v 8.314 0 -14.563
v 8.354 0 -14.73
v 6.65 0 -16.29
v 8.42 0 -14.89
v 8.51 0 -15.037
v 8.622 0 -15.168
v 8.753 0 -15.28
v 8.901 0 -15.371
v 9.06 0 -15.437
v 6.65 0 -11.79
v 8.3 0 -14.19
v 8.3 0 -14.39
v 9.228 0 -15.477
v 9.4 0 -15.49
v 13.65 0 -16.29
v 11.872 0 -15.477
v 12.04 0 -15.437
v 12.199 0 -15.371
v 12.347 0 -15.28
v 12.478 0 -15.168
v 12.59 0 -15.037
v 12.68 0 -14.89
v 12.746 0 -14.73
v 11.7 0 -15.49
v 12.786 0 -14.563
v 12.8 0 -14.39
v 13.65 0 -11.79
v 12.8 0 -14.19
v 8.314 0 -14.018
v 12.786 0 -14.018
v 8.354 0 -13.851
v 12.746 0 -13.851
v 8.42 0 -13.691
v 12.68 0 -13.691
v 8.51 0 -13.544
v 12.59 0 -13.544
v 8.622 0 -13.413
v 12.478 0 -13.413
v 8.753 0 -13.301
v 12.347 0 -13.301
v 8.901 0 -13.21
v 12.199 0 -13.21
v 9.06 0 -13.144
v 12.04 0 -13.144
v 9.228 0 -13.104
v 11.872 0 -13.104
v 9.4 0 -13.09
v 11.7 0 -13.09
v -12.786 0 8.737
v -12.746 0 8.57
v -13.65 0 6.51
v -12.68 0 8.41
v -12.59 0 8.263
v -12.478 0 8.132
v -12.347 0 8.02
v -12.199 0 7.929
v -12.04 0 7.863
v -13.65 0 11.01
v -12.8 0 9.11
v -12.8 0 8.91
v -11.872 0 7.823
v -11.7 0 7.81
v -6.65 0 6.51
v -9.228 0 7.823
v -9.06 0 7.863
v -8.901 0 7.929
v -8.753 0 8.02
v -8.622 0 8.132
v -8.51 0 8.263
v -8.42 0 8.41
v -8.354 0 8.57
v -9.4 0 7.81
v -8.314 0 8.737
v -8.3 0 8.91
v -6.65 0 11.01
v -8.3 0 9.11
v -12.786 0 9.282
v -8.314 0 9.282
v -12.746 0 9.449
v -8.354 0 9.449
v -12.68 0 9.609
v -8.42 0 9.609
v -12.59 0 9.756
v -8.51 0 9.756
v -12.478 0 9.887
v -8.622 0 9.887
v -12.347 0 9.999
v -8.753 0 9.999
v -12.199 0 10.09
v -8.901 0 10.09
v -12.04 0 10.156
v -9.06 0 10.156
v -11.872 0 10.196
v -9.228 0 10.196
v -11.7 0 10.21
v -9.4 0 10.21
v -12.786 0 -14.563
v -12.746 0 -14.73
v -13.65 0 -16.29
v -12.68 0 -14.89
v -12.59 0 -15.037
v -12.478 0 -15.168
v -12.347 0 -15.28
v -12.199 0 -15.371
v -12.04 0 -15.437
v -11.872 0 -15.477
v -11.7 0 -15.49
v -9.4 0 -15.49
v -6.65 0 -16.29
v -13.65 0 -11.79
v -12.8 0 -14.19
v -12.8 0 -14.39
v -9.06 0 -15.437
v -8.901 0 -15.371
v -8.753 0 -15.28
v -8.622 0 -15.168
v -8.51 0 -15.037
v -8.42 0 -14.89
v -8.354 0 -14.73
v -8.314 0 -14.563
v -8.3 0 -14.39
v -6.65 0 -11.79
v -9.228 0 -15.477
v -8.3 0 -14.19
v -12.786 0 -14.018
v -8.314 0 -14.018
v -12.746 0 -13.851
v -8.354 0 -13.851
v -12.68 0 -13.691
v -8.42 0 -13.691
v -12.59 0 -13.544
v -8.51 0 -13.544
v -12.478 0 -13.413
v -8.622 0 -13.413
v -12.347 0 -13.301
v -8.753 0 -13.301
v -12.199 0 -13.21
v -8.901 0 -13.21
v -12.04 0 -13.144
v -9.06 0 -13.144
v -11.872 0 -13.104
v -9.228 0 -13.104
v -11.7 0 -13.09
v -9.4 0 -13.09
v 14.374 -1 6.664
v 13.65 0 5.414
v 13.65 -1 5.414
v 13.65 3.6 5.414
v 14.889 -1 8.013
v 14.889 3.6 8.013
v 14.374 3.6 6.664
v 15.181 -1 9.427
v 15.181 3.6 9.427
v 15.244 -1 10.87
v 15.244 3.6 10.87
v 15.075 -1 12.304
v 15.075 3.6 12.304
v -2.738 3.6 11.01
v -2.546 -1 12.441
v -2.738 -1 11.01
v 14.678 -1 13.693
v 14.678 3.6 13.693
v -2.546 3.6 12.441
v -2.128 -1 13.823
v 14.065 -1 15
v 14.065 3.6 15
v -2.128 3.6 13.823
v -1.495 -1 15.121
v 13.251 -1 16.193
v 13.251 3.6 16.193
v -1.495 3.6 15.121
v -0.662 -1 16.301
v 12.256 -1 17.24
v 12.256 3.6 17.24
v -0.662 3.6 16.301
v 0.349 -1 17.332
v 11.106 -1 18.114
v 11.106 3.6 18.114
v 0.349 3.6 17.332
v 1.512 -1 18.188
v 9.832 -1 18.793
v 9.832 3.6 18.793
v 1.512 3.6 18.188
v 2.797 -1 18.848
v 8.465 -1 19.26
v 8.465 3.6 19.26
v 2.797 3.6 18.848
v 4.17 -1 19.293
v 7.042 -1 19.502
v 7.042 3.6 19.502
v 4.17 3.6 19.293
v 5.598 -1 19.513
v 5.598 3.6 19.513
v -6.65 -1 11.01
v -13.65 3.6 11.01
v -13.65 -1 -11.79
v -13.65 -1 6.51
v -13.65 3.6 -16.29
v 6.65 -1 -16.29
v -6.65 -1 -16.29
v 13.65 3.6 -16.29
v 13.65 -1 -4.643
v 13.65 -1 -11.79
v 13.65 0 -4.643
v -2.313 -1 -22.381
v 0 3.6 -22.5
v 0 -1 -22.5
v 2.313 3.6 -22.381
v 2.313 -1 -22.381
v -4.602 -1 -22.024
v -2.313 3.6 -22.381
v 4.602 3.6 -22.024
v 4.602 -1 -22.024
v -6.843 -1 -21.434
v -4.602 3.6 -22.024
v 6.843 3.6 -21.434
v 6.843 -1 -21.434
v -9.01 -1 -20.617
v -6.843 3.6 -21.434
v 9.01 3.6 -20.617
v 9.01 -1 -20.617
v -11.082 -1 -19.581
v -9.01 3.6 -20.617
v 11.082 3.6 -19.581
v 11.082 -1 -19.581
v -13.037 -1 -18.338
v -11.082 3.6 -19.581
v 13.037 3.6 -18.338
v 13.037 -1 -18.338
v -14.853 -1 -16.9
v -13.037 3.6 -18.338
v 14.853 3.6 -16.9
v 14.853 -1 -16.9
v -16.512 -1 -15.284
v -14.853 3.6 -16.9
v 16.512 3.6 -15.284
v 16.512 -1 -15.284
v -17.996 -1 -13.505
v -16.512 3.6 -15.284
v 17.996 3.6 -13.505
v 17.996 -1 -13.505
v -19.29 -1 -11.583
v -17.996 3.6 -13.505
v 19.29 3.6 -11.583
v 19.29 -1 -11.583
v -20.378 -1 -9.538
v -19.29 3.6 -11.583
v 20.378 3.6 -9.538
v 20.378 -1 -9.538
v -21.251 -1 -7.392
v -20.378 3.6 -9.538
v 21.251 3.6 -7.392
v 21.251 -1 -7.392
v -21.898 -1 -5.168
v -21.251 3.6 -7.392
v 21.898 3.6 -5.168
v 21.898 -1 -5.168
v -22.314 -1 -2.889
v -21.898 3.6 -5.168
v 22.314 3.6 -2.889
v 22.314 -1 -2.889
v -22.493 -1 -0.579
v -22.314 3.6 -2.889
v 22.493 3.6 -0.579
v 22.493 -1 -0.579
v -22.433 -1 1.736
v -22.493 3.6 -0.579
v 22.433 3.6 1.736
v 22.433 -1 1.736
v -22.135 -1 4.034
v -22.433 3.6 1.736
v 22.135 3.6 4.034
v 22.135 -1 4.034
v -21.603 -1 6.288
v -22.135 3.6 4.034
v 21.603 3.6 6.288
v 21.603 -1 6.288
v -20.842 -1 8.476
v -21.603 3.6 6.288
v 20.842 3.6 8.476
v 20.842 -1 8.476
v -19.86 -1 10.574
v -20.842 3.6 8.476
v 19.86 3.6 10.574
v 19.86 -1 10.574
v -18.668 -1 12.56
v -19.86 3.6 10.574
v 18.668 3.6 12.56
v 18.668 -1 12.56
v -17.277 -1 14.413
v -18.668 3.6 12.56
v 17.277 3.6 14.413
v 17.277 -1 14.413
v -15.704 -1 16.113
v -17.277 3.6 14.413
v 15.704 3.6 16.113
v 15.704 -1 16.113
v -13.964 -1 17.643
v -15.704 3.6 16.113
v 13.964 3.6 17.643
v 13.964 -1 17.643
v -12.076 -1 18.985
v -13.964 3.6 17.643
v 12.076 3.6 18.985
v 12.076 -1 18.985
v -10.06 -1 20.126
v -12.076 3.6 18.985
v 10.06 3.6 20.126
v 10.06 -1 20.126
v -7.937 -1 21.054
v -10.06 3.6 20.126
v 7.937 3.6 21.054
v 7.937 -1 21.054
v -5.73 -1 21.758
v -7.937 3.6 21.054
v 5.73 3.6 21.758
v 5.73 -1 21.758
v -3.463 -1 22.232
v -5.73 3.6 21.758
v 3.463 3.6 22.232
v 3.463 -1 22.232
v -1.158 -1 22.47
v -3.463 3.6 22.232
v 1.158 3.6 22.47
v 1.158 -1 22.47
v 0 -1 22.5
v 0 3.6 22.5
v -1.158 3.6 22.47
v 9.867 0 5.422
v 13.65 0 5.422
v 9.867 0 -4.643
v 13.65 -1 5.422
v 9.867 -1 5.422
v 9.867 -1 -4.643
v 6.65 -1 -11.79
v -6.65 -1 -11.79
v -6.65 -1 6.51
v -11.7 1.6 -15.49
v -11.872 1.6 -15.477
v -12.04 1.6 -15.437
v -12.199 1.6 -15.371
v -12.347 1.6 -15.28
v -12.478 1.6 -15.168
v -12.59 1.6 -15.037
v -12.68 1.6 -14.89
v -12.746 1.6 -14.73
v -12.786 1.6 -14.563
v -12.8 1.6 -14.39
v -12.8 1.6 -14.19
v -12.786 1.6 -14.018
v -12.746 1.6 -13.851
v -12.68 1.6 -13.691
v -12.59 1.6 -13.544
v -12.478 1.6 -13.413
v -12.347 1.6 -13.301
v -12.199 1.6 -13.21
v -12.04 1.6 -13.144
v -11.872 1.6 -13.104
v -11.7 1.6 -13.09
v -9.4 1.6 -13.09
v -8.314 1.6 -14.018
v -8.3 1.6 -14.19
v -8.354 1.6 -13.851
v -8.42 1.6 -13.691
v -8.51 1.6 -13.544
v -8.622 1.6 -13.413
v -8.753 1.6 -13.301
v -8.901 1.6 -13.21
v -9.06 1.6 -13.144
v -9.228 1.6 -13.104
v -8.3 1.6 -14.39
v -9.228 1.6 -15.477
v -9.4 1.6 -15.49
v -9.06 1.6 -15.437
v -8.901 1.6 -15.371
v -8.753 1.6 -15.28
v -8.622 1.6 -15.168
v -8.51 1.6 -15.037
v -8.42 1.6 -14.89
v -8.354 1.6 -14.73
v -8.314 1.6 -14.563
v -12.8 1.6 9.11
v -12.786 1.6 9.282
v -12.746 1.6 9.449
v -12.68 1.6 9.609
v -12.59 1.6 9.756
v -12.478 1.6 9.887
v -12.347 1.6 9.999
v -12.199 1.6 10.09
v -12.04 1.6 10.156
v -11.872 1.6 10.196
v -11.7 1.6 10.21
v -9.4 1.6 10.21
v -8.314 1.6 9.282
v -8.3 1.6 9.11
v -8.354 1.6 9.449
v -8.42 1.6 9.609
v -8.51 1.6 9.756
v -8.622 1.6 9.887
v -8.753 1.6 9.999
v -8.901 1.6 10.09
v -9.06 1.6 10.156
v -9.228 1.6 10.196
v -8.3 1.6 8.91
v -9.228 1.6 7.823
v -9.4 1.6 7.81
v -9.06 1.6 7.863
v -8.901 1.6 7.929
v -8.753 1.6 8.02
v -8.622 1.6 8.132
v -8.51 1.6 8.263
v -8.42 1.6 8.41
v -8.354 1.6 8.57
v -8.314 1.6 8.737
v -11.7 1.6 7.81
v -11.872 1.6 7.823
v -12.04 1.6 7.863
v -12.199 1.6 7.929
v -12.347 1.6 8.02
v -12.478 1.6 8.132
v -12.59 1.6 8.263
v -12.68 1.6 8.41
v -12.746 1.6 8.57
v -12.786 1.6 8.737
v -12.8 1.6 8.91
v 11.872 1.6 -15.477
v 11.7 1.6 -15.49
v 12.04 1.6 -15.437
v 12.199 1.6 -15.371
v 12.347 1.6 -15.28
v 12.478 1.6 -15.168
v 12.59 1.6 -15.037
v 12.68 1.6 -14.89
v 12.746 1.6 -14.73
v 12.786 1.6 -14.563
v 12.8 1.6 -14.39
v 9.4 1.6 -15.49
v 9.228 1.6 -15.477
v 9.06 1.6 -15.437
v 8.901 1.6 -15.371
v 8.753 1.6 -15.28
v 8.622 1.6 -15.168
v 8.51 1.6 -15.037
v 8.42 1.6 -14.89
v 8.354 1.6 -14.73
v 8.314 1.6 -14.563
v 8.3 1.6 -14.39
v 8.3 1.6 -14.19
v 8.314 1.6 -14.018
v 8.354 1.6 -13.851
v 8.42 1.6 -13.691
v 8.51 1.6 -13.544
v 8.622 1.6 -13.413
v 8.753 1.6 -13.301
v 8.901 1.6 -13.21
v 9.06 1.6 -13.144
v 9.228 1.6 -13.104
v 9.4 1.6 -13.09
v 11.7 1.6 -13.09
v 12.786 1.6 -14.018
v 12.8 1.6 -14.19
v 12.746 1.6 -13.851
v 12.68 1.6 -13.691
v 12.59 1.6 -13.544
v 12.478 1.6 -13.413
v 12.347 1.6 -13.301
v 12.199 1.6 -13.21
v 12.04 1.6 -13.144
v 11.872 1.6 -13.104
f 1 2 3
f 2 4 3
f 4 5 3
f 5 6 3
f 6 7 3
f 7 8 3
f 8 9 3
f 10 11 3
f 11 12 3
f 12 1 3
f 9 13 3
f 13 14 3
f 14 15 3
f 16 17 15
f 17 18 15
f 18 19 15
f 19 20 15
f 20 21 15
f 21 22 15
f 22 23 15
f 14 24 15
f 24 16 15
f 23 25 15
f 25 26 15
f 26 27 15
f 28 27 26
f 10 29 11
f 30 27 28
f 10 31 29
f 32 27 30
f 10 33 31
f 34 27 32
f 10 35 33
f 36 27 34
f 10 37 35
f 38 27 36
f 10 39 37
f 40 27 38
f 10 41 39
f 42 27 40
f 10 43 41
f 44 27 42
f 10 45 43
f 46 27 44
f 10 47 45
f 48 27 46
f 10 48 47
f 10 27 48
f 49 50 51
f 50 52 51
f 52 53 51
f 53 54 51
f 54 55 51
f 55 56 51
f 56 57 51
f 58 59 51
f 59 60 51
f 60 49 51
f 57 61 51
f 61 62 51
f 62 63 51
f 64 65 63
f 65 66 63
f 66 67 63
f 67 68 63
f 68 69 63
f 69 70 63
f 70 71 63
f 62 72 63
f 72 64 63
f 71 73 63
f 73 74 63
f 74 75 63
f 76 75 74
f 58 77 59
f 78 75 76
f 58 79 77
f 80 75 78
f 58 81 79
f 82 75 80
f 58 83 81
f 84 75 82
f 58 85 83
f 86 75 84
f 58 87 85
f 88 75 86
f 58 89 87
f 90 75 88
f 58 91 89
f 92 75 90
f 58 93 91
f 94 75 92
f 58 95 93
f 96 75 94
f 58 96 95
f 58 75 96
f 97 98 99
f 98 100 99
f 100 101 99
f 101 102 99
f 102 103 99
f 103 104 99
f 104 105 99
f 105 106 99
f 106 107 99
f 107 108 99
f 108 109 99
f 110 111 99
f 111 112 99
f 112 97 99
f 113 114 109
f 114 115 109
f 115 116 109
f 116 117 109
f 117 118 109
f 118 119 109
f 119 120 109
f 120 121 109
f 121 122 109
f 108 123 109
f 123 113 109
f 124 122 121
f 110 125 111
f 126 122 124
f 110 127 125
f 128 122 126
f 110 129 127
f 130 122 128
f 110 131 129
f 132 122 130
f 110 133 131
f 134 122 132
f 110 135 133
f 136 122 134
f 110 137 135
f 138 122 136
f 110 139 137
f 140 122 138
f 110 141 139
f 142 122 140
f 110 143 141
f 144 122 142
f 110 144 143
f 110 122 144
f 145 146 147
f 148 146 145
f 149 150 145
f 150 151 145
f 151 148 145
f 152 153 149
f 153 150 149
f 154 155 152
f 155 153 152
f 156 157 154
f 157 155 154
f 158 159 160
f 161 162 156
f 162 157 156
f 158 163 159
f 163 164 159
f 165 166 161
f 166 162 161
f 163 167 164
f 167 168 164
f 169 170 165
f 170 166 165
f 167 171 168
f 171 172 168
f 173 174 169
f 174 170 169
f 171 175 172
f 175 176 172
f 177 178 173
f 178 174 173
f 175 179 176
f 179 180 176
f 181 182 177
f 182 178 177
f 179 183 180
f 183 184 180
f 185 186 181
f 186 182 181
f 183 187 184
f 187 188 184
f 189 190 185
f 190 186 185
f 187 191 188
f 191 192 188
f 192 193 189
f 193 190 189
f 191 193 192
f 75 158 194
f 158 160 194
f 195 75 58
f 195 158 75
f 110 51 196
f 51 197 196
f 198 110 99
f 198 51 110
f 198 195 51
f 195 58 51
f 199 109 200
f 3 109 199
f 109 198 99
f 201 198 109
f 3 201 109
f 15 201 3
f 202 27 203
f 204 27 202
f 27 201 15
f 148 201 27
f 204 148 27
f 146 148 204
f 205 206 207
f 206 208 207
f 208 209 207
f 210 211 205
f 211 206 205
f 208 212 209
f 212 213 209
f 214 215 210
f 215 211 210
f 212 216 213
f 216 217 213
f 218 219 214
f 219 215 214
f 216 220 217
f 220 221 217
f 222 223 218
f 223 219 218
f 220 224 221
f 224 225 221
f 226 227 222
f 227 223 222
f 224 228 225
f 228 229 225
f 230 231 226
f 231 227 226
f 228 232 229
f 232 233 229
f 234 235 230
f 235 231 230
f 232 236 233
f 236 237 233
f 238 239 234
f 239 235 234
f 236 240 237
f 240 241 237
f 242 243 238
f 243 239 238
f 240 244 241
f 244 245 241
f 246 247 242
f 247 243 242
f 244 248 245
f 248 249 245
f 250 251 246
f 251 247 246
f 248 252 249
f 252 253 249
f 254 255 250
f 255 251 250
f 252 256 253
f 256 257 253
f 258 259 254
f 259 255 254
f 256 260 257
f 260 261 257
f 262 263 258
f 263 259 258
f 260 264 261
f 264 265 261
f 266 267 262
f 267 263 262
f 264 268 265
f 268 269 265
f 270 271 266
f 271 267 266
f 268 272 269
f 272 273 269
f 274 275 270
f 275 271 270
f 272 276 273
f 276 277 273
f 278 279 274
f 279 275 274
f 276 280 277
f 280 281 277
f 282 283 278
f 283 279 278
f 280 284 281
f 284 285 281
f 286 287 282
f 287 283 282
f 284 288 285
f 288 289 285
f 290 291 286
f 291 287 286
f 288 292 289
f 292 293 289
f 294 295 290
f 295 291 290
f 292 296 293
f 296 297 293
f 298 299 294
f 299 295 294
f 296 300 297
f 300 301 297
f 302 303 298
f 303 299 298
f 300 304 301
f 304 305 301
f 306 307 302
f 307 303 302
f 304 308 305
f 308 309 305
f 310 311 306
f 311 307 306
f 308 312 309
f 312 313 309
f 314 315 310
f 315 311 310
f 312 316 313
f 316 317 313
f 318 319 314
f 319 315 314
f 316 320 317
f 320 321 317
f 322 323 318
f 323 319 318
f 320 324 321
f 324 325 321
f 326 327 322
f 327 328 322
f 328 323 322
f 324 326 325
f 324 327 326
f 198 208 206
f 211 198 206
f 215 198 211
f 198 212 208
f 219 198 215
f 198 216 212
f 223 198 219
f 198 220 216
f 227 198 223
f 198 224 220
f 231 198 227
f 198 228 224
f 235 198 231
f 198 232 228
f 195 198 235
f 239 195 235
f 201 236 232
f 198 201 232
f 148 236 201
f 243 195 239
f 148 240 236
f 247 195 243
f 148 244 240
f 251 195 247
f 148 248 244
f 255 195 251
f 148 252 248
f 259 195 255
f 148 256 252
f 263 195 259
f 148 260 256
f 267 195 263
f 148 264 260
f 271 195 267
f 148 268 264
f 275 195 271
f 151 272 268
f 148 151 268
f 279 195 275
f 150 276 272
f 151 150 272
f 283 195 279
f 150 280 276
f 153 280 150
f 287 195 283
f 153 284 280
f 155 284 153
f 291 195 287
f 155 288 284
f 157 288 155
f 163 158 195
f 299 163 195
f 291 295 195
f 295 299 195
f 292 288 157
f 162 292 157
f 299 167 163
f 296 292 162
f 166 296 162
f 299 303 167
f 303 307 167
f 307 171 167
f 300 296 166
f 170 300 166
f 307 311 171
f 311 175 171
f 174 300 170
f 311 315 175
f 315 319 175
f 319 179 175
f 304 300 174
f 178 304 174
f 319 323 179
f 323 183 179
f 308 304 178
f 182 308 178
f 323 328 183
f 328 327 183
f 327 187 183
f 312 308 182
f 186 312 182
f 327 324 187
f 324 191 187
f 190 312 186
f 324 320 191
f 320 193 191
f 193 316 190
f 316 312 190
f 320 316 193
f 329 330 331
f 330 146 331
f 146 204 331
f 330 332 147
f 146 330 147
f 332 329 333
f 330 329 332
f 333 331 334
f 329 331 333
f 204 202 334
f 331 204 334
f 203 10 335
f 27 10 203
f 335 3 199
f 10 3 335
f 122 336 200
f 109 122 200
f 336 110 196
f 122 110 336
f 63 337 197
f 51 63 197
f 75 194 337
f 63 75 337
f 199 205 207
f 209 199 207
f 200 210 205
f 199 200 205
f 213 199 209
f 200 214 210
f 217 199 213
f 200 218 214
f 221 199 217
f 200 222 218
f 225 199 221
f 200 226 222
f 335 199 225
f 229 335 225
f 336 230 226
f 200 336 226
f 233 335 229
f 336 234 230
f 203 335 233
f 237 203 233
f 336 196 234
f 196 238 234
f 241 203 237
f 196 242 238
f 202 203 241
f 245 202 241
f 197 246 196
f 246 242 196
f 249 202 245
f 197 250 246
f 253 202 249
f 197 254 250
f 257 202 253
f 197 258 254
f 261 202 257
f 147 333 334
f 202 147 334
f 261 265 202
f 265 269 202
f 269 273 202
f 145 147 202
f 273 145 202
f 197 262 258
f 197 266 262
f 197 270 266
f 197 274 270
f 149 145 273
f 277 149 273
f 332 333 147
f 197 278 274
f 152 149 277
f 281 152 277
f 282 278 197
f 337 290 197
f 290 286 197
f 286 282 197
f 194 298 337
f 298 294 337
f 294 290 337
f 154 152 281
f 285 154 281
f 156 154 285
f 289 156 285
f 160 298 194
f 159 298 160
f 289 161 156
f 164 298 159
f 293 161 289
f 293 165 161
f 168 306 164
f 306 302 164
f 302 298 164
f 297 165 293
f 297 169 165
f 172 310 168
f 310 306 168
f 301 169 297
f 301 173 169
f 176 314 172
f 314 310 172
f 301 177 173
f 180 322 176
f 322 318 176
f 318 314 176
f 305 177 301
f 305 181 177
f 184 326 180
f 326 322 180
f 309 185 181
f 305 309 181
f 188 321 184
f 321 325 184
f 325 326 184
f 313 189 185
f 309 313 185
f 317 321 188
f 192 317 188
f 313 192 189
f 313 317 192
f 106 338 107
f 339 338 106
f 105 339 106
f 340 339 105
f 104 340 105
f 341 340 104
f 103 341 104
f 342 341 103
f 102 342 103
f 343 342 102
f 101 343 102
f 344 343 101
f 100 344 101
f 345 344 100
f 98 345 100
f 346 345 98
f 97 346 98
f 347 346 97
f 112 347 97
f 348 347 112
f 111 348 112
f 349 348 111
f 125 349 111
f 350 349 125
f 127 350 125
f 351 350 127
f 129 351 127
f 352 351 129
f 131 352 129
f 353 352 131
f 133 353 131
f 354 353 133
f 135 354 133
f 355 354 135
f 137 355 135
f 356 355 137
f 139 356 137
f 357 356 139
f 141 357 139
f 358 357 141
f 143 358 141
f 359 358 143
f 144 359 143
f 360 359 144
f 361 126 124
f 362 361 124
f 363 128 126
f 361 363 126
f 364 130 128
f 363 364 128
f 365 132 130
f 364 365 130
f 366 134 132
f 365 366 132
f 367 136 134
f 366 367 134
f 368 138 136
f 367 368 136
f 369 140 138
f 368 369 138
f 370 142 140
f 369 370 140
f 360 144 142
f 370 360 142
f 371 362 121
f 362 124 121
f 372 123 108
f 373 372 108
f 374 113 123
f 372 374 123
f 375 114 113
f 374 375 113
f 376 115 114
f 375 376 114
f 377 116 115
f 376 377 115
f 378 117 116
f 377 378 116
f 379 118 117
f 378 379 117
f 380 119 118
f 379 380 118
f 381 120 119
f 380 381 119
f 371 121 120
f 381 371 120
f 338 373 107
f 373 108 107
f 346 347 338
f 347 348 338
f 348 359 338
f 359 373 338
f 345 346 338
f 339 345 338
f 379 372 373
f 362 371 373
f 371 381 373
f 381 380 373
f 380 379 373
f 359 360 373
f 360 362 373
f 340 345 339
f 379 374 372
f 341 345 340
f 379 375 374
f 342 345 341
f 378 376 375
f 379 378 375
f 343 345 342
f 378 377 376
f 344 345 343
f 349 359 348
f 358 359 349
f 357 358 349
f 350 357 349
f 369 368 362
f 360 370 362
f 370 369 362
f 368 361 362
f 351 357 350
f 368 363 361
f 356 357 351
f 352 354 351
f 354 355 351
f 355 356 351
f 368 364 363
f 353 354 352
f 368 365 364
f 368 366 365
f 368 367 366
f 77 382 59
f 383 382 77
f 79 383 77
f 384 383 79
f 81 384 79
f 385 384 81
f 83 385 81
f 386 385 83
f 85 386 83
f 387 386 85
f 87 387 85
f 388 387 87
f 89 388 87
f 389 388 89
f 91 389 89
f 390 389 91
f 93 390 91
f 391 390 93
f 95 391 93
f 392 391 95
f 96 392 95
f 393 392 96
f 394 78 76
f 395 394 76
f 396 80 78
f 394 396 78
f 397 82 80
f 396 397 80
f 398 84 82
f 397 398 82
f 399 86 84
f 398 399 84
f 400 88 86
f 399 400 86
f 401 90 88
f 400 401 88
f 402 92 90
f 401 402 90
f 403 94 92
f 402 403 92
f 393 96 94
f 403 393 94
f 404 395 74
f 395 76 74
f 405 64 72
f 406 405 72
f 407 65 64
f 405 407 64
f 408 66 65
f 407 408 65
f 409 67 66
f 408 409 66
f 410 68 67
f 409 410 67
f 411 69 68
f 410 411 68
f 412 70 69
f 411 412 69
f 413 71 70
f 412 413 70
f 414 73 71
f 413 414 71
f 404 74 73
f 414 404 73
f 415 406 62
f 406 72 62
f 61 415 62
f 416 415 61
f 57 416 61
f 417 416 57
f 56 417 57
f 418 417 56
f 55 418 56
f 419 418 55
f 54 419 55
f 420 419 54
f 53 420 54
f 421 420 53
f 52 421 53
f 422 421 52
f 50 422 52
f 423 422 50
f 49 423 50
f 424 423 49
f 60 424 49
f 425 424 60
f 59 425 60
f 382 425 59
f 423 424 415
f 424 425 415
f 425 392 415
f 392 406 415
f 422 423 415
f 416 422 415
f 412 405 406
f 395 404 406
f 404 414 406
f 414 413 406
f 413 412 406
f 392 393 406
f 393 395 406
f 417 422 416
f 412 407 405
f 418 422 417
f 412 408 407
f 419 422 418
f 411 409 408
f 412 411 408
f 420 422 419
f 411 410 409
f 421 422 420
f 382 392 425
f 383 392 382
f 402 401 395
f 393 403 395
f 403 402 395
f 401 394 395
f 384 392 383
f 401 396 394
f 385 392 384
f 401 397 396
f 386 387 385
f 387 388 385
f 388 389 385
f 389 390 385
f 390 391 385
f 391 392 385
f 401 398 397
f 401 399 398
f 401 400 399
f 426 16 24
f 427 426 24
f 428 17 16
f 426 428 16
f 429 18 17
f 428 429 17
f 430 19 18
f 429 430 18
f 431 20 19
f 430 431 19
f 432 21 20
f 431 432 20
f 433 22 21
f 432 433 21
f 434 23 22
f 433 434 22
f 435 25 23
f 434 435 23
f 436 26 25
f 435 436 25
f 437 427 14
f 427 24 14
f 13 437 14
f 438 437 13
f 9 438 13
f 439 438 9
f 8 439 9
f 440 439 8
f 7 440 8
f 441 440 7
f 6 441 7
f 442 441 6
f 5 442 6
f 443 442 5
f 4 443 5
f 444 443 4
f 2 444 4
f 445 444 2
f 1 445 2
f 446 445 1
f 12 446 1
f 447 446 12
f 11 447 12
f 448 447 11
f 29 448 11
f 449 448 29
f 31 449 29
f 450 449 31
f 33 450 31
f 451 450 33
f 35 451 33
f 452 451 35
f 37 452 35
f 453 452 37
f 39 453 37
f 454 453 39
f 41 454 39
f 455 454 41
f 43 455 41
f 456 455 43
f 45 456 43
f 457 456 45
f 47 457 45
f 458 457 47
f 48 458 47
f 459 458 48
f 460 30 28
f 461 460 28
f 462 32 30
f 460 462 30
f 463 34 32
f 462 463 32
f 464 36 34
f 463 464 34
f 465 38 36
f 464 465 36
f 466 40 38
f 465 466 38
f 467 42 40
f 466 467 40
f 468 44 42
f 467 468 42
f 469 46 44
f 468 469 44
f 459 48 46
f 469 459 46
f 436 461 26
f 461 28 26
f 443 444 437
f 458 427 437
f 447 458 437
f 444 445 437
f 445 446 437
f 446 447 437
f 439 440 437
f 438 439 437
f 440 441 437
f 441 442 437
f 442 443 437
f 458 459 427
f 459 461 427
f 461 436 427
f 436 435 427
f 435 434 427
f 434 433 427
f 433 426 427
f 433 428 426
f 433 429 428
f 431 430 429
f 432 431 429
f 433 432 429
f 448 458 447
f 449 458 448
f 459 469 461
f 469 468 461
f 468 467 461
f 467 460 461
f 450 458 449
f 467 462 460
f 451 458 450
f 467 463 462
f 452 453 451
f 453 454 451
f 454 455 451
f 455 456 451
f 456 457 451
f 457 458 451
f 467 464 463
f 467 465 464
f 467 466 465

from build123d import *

# Parameters (mm, degrees)
SKETCH1_R           = 22.5
BOSS_EXTRUDE1_DEPTH = 3.6
BOSS_EXTRUDE2_START = -1
SKETCH1_3_R         = 22.5
BOSS_EXTRUDE2_DEPTH = 1
BOSS_EXTRUDE3_DEPTH = 1.6


with BuildPart() as part:
    # Sketch1 → Boss-Extrude1 (new body)
    with BuildSketch(Plane(origin=(0, 0, 0), x_dir=(1, 0, 0), z_dir=(0, 1, 0))):
        Circle(SKETCH1_R)
        with BuildLine():
            Line((-13.65, 11.790472541), (-13.65, 16.290472541))
            Line((-13.65, 16.290472541), (-6.65, 16.290472541))
            Line((-6.65, 16.290472541), (6.65, 16.290472541))
            Line((6.65, 16.290472541), (13.65, 16.290472541))
            Line((13.65, 16.290472541), (13.65, 11.790472541))
            Line((13.65, 11.790472541), (13.65, 4.642529479))
            Line((13.65, 4.642529479), (13.65, -5.41416329))
            ThreePointArc((13.65, -5.41416329), (13.652871179, -5.418313502), (13.65574003, -5.422465323))
            ThreePointArc((13.65574003, -5.422465323), (14.219560095, -14.718302537), (6.25, -19.53666268))
            ThreePointArc((6.25, -19.53666268), (0.055477541, -17.065666548), (-2.737569132, -11.009527459))
            Line((-2.737569132, -11.009527459), (-6.65, -11.009527459))
            Line((-6.65, -11.009527459), (-13.65, -11.009527459))
            Line((-13.65, -11.009527459), (-13.65, -6.509527459))
            Line((-13.65, -6.509527459), (-13.65, 11.790472541))
        make_face(mode=Mode.SUBTRACT)
    extrude(amount=BOSS_EXTRUDE1_DEPTH)

    # Sketch1<3> → Boss-Extrude2 (add)
    with BuildSketch(Plane(origin=(0, 0, 0), x_dir=(1, 0, 0), z_dir=(0, 1, 0)).offset(BOSS_EXTRUDE2_START)):
        Circle(SKETCH1_3_R)
        with BuildLine():
            Line((-6.65, 11.790472541), (-6.65, 16.290472541))
            Line((-6.65, 16.290472541), (6.65, 16.290472541))
            Line((6.65, 16.290472541), (6.65, 11.790472541))
            Line((6.65, 11.790472541), (13.65, 11.790472541))
            Line((13.65, 11.790472541), (13.65, 4.642529479))
            Line((13.65, 4.642529479), (9.867222257, 4.642529479))
            Line((9.867222257, 4.642529479), (9.867222257, -5.422465323))
            Line((9.867222257, -5.422465323), (13.65, -5.422465323))
            Line((13.65, -5.422465323), (13.65, -5.41416329))
            ThreePointArc((13.65, -5.41416329), (9.158112615, -19.053873551), (-2.737569132, -11.009527459))
            Line((-2.737569132, -11.009527459), (-6.65, -11.009527459))
            Line((-6.65, -11.009527459), (-6.65, -6.509527459))
            Line((-6.65, -6.509527459), (-13.65, -6.509527459))
            Line((-13.65, -6.509527459), (-13.65, 11.790472541))
            Line((-13.65, 11.790472541), (-6.65, 11.790472541))
        make_face(mode=Mode.SUBTRACT)
    extrude(amount=BOSS_EXTRUDE2_DEPTH)

    # Sketch2 → Boss-Extrude3 (add)
    with BuildSketch(Plane(origin=(0, 0, 0), x_dir=(1, 0, 0), z_dir=(0, 1, 0))):
        with BuildLine():
            Line((-11.7, 13.090472541), (-9.4, 13.090472541))
            ThreePointArc((-9.4, 13.090472541), (-8.622182541, 13.412655081), (-8.3, 14.190472541))
            Line((-8.3, 14.190472541), (-8.3, 14.390472541))
            ThreePointArc((-8.3, 14.390472541), (-8.622182541, 15.16829), (-9.4, 15.490472541))
            Line((-9.4, 15.490472541), (-11.7, 15.490472541))
            ThreePointArc((-11.7, 15.490472541), (-12.477817459, 15.16829), (-12.8, 14.390472541))
            Line((-12.8, 14.390472541), (-12.8, 14.190472541))
            ThreePointArc((-12.8, 14.190472541), (-12.477817459, 13.412655081), (-11.7, 13.090472541))
        make_face()
        with BuildLine():
            Line((-11.7, -10.209527459), (-9.4, -10.209527459))
            ThreePointArc((-9.4, -10.209527459), (-8.622182541, -9.887344919), (-8.3, -9.109527459))
            Line((-8.3, -9.109527459), (-8.3, -8.909527459))
            ThreePointArc((-8.3, -8.909527459), (-8.622182541, -8.13171), (-9.4, -7.809527459))
            Line((-9.4, -7.809527459), (-11.7, -7.809527459))
            ThreePointArc((-11.7, -7.809527459), (-12.477817459, -8.13171), (-12.8, -8.909527459))
            Line((-12.8, -8.909527459), (-12.8, -9.109527459))
            ThreePointArc((-12.8, -9.109527459), (-12.477817459, -9.887344919), (-11.7, -10.209527459))
        make_face()
        with BuildLine():
            Line((11.7, 15.490472541), (9.4, 15.490472541))
            ThreePointArc((9.4, 15.490472541), (8.622182541, 15.16829), (8.3, 14.390472541))
            Line((8.3, 14.390472541), (8.3, 14.190472541))
            ThreePointArc((8.3, 14.190472541), (8.622182541, 13.412655081), (9.4, 13.090472541))
            Line((9.4, 13.090472541), (11.7, 13.090472541))
            ThreePointArc((11.7, 13.090472541), (12.477817459, 13.412655081), (12.8, 14.190472541))
            Line((12.8, 14.190472541), (12.8, 14.390472541))
            ThreePointArc((12.8, 14.390472541), (12.477817459, 15.16829), (11.7, 15.490472541))
        make_face()
    extrude(amount=BOSS_EXTRUDE3_DEPTH)


solid = part.part
